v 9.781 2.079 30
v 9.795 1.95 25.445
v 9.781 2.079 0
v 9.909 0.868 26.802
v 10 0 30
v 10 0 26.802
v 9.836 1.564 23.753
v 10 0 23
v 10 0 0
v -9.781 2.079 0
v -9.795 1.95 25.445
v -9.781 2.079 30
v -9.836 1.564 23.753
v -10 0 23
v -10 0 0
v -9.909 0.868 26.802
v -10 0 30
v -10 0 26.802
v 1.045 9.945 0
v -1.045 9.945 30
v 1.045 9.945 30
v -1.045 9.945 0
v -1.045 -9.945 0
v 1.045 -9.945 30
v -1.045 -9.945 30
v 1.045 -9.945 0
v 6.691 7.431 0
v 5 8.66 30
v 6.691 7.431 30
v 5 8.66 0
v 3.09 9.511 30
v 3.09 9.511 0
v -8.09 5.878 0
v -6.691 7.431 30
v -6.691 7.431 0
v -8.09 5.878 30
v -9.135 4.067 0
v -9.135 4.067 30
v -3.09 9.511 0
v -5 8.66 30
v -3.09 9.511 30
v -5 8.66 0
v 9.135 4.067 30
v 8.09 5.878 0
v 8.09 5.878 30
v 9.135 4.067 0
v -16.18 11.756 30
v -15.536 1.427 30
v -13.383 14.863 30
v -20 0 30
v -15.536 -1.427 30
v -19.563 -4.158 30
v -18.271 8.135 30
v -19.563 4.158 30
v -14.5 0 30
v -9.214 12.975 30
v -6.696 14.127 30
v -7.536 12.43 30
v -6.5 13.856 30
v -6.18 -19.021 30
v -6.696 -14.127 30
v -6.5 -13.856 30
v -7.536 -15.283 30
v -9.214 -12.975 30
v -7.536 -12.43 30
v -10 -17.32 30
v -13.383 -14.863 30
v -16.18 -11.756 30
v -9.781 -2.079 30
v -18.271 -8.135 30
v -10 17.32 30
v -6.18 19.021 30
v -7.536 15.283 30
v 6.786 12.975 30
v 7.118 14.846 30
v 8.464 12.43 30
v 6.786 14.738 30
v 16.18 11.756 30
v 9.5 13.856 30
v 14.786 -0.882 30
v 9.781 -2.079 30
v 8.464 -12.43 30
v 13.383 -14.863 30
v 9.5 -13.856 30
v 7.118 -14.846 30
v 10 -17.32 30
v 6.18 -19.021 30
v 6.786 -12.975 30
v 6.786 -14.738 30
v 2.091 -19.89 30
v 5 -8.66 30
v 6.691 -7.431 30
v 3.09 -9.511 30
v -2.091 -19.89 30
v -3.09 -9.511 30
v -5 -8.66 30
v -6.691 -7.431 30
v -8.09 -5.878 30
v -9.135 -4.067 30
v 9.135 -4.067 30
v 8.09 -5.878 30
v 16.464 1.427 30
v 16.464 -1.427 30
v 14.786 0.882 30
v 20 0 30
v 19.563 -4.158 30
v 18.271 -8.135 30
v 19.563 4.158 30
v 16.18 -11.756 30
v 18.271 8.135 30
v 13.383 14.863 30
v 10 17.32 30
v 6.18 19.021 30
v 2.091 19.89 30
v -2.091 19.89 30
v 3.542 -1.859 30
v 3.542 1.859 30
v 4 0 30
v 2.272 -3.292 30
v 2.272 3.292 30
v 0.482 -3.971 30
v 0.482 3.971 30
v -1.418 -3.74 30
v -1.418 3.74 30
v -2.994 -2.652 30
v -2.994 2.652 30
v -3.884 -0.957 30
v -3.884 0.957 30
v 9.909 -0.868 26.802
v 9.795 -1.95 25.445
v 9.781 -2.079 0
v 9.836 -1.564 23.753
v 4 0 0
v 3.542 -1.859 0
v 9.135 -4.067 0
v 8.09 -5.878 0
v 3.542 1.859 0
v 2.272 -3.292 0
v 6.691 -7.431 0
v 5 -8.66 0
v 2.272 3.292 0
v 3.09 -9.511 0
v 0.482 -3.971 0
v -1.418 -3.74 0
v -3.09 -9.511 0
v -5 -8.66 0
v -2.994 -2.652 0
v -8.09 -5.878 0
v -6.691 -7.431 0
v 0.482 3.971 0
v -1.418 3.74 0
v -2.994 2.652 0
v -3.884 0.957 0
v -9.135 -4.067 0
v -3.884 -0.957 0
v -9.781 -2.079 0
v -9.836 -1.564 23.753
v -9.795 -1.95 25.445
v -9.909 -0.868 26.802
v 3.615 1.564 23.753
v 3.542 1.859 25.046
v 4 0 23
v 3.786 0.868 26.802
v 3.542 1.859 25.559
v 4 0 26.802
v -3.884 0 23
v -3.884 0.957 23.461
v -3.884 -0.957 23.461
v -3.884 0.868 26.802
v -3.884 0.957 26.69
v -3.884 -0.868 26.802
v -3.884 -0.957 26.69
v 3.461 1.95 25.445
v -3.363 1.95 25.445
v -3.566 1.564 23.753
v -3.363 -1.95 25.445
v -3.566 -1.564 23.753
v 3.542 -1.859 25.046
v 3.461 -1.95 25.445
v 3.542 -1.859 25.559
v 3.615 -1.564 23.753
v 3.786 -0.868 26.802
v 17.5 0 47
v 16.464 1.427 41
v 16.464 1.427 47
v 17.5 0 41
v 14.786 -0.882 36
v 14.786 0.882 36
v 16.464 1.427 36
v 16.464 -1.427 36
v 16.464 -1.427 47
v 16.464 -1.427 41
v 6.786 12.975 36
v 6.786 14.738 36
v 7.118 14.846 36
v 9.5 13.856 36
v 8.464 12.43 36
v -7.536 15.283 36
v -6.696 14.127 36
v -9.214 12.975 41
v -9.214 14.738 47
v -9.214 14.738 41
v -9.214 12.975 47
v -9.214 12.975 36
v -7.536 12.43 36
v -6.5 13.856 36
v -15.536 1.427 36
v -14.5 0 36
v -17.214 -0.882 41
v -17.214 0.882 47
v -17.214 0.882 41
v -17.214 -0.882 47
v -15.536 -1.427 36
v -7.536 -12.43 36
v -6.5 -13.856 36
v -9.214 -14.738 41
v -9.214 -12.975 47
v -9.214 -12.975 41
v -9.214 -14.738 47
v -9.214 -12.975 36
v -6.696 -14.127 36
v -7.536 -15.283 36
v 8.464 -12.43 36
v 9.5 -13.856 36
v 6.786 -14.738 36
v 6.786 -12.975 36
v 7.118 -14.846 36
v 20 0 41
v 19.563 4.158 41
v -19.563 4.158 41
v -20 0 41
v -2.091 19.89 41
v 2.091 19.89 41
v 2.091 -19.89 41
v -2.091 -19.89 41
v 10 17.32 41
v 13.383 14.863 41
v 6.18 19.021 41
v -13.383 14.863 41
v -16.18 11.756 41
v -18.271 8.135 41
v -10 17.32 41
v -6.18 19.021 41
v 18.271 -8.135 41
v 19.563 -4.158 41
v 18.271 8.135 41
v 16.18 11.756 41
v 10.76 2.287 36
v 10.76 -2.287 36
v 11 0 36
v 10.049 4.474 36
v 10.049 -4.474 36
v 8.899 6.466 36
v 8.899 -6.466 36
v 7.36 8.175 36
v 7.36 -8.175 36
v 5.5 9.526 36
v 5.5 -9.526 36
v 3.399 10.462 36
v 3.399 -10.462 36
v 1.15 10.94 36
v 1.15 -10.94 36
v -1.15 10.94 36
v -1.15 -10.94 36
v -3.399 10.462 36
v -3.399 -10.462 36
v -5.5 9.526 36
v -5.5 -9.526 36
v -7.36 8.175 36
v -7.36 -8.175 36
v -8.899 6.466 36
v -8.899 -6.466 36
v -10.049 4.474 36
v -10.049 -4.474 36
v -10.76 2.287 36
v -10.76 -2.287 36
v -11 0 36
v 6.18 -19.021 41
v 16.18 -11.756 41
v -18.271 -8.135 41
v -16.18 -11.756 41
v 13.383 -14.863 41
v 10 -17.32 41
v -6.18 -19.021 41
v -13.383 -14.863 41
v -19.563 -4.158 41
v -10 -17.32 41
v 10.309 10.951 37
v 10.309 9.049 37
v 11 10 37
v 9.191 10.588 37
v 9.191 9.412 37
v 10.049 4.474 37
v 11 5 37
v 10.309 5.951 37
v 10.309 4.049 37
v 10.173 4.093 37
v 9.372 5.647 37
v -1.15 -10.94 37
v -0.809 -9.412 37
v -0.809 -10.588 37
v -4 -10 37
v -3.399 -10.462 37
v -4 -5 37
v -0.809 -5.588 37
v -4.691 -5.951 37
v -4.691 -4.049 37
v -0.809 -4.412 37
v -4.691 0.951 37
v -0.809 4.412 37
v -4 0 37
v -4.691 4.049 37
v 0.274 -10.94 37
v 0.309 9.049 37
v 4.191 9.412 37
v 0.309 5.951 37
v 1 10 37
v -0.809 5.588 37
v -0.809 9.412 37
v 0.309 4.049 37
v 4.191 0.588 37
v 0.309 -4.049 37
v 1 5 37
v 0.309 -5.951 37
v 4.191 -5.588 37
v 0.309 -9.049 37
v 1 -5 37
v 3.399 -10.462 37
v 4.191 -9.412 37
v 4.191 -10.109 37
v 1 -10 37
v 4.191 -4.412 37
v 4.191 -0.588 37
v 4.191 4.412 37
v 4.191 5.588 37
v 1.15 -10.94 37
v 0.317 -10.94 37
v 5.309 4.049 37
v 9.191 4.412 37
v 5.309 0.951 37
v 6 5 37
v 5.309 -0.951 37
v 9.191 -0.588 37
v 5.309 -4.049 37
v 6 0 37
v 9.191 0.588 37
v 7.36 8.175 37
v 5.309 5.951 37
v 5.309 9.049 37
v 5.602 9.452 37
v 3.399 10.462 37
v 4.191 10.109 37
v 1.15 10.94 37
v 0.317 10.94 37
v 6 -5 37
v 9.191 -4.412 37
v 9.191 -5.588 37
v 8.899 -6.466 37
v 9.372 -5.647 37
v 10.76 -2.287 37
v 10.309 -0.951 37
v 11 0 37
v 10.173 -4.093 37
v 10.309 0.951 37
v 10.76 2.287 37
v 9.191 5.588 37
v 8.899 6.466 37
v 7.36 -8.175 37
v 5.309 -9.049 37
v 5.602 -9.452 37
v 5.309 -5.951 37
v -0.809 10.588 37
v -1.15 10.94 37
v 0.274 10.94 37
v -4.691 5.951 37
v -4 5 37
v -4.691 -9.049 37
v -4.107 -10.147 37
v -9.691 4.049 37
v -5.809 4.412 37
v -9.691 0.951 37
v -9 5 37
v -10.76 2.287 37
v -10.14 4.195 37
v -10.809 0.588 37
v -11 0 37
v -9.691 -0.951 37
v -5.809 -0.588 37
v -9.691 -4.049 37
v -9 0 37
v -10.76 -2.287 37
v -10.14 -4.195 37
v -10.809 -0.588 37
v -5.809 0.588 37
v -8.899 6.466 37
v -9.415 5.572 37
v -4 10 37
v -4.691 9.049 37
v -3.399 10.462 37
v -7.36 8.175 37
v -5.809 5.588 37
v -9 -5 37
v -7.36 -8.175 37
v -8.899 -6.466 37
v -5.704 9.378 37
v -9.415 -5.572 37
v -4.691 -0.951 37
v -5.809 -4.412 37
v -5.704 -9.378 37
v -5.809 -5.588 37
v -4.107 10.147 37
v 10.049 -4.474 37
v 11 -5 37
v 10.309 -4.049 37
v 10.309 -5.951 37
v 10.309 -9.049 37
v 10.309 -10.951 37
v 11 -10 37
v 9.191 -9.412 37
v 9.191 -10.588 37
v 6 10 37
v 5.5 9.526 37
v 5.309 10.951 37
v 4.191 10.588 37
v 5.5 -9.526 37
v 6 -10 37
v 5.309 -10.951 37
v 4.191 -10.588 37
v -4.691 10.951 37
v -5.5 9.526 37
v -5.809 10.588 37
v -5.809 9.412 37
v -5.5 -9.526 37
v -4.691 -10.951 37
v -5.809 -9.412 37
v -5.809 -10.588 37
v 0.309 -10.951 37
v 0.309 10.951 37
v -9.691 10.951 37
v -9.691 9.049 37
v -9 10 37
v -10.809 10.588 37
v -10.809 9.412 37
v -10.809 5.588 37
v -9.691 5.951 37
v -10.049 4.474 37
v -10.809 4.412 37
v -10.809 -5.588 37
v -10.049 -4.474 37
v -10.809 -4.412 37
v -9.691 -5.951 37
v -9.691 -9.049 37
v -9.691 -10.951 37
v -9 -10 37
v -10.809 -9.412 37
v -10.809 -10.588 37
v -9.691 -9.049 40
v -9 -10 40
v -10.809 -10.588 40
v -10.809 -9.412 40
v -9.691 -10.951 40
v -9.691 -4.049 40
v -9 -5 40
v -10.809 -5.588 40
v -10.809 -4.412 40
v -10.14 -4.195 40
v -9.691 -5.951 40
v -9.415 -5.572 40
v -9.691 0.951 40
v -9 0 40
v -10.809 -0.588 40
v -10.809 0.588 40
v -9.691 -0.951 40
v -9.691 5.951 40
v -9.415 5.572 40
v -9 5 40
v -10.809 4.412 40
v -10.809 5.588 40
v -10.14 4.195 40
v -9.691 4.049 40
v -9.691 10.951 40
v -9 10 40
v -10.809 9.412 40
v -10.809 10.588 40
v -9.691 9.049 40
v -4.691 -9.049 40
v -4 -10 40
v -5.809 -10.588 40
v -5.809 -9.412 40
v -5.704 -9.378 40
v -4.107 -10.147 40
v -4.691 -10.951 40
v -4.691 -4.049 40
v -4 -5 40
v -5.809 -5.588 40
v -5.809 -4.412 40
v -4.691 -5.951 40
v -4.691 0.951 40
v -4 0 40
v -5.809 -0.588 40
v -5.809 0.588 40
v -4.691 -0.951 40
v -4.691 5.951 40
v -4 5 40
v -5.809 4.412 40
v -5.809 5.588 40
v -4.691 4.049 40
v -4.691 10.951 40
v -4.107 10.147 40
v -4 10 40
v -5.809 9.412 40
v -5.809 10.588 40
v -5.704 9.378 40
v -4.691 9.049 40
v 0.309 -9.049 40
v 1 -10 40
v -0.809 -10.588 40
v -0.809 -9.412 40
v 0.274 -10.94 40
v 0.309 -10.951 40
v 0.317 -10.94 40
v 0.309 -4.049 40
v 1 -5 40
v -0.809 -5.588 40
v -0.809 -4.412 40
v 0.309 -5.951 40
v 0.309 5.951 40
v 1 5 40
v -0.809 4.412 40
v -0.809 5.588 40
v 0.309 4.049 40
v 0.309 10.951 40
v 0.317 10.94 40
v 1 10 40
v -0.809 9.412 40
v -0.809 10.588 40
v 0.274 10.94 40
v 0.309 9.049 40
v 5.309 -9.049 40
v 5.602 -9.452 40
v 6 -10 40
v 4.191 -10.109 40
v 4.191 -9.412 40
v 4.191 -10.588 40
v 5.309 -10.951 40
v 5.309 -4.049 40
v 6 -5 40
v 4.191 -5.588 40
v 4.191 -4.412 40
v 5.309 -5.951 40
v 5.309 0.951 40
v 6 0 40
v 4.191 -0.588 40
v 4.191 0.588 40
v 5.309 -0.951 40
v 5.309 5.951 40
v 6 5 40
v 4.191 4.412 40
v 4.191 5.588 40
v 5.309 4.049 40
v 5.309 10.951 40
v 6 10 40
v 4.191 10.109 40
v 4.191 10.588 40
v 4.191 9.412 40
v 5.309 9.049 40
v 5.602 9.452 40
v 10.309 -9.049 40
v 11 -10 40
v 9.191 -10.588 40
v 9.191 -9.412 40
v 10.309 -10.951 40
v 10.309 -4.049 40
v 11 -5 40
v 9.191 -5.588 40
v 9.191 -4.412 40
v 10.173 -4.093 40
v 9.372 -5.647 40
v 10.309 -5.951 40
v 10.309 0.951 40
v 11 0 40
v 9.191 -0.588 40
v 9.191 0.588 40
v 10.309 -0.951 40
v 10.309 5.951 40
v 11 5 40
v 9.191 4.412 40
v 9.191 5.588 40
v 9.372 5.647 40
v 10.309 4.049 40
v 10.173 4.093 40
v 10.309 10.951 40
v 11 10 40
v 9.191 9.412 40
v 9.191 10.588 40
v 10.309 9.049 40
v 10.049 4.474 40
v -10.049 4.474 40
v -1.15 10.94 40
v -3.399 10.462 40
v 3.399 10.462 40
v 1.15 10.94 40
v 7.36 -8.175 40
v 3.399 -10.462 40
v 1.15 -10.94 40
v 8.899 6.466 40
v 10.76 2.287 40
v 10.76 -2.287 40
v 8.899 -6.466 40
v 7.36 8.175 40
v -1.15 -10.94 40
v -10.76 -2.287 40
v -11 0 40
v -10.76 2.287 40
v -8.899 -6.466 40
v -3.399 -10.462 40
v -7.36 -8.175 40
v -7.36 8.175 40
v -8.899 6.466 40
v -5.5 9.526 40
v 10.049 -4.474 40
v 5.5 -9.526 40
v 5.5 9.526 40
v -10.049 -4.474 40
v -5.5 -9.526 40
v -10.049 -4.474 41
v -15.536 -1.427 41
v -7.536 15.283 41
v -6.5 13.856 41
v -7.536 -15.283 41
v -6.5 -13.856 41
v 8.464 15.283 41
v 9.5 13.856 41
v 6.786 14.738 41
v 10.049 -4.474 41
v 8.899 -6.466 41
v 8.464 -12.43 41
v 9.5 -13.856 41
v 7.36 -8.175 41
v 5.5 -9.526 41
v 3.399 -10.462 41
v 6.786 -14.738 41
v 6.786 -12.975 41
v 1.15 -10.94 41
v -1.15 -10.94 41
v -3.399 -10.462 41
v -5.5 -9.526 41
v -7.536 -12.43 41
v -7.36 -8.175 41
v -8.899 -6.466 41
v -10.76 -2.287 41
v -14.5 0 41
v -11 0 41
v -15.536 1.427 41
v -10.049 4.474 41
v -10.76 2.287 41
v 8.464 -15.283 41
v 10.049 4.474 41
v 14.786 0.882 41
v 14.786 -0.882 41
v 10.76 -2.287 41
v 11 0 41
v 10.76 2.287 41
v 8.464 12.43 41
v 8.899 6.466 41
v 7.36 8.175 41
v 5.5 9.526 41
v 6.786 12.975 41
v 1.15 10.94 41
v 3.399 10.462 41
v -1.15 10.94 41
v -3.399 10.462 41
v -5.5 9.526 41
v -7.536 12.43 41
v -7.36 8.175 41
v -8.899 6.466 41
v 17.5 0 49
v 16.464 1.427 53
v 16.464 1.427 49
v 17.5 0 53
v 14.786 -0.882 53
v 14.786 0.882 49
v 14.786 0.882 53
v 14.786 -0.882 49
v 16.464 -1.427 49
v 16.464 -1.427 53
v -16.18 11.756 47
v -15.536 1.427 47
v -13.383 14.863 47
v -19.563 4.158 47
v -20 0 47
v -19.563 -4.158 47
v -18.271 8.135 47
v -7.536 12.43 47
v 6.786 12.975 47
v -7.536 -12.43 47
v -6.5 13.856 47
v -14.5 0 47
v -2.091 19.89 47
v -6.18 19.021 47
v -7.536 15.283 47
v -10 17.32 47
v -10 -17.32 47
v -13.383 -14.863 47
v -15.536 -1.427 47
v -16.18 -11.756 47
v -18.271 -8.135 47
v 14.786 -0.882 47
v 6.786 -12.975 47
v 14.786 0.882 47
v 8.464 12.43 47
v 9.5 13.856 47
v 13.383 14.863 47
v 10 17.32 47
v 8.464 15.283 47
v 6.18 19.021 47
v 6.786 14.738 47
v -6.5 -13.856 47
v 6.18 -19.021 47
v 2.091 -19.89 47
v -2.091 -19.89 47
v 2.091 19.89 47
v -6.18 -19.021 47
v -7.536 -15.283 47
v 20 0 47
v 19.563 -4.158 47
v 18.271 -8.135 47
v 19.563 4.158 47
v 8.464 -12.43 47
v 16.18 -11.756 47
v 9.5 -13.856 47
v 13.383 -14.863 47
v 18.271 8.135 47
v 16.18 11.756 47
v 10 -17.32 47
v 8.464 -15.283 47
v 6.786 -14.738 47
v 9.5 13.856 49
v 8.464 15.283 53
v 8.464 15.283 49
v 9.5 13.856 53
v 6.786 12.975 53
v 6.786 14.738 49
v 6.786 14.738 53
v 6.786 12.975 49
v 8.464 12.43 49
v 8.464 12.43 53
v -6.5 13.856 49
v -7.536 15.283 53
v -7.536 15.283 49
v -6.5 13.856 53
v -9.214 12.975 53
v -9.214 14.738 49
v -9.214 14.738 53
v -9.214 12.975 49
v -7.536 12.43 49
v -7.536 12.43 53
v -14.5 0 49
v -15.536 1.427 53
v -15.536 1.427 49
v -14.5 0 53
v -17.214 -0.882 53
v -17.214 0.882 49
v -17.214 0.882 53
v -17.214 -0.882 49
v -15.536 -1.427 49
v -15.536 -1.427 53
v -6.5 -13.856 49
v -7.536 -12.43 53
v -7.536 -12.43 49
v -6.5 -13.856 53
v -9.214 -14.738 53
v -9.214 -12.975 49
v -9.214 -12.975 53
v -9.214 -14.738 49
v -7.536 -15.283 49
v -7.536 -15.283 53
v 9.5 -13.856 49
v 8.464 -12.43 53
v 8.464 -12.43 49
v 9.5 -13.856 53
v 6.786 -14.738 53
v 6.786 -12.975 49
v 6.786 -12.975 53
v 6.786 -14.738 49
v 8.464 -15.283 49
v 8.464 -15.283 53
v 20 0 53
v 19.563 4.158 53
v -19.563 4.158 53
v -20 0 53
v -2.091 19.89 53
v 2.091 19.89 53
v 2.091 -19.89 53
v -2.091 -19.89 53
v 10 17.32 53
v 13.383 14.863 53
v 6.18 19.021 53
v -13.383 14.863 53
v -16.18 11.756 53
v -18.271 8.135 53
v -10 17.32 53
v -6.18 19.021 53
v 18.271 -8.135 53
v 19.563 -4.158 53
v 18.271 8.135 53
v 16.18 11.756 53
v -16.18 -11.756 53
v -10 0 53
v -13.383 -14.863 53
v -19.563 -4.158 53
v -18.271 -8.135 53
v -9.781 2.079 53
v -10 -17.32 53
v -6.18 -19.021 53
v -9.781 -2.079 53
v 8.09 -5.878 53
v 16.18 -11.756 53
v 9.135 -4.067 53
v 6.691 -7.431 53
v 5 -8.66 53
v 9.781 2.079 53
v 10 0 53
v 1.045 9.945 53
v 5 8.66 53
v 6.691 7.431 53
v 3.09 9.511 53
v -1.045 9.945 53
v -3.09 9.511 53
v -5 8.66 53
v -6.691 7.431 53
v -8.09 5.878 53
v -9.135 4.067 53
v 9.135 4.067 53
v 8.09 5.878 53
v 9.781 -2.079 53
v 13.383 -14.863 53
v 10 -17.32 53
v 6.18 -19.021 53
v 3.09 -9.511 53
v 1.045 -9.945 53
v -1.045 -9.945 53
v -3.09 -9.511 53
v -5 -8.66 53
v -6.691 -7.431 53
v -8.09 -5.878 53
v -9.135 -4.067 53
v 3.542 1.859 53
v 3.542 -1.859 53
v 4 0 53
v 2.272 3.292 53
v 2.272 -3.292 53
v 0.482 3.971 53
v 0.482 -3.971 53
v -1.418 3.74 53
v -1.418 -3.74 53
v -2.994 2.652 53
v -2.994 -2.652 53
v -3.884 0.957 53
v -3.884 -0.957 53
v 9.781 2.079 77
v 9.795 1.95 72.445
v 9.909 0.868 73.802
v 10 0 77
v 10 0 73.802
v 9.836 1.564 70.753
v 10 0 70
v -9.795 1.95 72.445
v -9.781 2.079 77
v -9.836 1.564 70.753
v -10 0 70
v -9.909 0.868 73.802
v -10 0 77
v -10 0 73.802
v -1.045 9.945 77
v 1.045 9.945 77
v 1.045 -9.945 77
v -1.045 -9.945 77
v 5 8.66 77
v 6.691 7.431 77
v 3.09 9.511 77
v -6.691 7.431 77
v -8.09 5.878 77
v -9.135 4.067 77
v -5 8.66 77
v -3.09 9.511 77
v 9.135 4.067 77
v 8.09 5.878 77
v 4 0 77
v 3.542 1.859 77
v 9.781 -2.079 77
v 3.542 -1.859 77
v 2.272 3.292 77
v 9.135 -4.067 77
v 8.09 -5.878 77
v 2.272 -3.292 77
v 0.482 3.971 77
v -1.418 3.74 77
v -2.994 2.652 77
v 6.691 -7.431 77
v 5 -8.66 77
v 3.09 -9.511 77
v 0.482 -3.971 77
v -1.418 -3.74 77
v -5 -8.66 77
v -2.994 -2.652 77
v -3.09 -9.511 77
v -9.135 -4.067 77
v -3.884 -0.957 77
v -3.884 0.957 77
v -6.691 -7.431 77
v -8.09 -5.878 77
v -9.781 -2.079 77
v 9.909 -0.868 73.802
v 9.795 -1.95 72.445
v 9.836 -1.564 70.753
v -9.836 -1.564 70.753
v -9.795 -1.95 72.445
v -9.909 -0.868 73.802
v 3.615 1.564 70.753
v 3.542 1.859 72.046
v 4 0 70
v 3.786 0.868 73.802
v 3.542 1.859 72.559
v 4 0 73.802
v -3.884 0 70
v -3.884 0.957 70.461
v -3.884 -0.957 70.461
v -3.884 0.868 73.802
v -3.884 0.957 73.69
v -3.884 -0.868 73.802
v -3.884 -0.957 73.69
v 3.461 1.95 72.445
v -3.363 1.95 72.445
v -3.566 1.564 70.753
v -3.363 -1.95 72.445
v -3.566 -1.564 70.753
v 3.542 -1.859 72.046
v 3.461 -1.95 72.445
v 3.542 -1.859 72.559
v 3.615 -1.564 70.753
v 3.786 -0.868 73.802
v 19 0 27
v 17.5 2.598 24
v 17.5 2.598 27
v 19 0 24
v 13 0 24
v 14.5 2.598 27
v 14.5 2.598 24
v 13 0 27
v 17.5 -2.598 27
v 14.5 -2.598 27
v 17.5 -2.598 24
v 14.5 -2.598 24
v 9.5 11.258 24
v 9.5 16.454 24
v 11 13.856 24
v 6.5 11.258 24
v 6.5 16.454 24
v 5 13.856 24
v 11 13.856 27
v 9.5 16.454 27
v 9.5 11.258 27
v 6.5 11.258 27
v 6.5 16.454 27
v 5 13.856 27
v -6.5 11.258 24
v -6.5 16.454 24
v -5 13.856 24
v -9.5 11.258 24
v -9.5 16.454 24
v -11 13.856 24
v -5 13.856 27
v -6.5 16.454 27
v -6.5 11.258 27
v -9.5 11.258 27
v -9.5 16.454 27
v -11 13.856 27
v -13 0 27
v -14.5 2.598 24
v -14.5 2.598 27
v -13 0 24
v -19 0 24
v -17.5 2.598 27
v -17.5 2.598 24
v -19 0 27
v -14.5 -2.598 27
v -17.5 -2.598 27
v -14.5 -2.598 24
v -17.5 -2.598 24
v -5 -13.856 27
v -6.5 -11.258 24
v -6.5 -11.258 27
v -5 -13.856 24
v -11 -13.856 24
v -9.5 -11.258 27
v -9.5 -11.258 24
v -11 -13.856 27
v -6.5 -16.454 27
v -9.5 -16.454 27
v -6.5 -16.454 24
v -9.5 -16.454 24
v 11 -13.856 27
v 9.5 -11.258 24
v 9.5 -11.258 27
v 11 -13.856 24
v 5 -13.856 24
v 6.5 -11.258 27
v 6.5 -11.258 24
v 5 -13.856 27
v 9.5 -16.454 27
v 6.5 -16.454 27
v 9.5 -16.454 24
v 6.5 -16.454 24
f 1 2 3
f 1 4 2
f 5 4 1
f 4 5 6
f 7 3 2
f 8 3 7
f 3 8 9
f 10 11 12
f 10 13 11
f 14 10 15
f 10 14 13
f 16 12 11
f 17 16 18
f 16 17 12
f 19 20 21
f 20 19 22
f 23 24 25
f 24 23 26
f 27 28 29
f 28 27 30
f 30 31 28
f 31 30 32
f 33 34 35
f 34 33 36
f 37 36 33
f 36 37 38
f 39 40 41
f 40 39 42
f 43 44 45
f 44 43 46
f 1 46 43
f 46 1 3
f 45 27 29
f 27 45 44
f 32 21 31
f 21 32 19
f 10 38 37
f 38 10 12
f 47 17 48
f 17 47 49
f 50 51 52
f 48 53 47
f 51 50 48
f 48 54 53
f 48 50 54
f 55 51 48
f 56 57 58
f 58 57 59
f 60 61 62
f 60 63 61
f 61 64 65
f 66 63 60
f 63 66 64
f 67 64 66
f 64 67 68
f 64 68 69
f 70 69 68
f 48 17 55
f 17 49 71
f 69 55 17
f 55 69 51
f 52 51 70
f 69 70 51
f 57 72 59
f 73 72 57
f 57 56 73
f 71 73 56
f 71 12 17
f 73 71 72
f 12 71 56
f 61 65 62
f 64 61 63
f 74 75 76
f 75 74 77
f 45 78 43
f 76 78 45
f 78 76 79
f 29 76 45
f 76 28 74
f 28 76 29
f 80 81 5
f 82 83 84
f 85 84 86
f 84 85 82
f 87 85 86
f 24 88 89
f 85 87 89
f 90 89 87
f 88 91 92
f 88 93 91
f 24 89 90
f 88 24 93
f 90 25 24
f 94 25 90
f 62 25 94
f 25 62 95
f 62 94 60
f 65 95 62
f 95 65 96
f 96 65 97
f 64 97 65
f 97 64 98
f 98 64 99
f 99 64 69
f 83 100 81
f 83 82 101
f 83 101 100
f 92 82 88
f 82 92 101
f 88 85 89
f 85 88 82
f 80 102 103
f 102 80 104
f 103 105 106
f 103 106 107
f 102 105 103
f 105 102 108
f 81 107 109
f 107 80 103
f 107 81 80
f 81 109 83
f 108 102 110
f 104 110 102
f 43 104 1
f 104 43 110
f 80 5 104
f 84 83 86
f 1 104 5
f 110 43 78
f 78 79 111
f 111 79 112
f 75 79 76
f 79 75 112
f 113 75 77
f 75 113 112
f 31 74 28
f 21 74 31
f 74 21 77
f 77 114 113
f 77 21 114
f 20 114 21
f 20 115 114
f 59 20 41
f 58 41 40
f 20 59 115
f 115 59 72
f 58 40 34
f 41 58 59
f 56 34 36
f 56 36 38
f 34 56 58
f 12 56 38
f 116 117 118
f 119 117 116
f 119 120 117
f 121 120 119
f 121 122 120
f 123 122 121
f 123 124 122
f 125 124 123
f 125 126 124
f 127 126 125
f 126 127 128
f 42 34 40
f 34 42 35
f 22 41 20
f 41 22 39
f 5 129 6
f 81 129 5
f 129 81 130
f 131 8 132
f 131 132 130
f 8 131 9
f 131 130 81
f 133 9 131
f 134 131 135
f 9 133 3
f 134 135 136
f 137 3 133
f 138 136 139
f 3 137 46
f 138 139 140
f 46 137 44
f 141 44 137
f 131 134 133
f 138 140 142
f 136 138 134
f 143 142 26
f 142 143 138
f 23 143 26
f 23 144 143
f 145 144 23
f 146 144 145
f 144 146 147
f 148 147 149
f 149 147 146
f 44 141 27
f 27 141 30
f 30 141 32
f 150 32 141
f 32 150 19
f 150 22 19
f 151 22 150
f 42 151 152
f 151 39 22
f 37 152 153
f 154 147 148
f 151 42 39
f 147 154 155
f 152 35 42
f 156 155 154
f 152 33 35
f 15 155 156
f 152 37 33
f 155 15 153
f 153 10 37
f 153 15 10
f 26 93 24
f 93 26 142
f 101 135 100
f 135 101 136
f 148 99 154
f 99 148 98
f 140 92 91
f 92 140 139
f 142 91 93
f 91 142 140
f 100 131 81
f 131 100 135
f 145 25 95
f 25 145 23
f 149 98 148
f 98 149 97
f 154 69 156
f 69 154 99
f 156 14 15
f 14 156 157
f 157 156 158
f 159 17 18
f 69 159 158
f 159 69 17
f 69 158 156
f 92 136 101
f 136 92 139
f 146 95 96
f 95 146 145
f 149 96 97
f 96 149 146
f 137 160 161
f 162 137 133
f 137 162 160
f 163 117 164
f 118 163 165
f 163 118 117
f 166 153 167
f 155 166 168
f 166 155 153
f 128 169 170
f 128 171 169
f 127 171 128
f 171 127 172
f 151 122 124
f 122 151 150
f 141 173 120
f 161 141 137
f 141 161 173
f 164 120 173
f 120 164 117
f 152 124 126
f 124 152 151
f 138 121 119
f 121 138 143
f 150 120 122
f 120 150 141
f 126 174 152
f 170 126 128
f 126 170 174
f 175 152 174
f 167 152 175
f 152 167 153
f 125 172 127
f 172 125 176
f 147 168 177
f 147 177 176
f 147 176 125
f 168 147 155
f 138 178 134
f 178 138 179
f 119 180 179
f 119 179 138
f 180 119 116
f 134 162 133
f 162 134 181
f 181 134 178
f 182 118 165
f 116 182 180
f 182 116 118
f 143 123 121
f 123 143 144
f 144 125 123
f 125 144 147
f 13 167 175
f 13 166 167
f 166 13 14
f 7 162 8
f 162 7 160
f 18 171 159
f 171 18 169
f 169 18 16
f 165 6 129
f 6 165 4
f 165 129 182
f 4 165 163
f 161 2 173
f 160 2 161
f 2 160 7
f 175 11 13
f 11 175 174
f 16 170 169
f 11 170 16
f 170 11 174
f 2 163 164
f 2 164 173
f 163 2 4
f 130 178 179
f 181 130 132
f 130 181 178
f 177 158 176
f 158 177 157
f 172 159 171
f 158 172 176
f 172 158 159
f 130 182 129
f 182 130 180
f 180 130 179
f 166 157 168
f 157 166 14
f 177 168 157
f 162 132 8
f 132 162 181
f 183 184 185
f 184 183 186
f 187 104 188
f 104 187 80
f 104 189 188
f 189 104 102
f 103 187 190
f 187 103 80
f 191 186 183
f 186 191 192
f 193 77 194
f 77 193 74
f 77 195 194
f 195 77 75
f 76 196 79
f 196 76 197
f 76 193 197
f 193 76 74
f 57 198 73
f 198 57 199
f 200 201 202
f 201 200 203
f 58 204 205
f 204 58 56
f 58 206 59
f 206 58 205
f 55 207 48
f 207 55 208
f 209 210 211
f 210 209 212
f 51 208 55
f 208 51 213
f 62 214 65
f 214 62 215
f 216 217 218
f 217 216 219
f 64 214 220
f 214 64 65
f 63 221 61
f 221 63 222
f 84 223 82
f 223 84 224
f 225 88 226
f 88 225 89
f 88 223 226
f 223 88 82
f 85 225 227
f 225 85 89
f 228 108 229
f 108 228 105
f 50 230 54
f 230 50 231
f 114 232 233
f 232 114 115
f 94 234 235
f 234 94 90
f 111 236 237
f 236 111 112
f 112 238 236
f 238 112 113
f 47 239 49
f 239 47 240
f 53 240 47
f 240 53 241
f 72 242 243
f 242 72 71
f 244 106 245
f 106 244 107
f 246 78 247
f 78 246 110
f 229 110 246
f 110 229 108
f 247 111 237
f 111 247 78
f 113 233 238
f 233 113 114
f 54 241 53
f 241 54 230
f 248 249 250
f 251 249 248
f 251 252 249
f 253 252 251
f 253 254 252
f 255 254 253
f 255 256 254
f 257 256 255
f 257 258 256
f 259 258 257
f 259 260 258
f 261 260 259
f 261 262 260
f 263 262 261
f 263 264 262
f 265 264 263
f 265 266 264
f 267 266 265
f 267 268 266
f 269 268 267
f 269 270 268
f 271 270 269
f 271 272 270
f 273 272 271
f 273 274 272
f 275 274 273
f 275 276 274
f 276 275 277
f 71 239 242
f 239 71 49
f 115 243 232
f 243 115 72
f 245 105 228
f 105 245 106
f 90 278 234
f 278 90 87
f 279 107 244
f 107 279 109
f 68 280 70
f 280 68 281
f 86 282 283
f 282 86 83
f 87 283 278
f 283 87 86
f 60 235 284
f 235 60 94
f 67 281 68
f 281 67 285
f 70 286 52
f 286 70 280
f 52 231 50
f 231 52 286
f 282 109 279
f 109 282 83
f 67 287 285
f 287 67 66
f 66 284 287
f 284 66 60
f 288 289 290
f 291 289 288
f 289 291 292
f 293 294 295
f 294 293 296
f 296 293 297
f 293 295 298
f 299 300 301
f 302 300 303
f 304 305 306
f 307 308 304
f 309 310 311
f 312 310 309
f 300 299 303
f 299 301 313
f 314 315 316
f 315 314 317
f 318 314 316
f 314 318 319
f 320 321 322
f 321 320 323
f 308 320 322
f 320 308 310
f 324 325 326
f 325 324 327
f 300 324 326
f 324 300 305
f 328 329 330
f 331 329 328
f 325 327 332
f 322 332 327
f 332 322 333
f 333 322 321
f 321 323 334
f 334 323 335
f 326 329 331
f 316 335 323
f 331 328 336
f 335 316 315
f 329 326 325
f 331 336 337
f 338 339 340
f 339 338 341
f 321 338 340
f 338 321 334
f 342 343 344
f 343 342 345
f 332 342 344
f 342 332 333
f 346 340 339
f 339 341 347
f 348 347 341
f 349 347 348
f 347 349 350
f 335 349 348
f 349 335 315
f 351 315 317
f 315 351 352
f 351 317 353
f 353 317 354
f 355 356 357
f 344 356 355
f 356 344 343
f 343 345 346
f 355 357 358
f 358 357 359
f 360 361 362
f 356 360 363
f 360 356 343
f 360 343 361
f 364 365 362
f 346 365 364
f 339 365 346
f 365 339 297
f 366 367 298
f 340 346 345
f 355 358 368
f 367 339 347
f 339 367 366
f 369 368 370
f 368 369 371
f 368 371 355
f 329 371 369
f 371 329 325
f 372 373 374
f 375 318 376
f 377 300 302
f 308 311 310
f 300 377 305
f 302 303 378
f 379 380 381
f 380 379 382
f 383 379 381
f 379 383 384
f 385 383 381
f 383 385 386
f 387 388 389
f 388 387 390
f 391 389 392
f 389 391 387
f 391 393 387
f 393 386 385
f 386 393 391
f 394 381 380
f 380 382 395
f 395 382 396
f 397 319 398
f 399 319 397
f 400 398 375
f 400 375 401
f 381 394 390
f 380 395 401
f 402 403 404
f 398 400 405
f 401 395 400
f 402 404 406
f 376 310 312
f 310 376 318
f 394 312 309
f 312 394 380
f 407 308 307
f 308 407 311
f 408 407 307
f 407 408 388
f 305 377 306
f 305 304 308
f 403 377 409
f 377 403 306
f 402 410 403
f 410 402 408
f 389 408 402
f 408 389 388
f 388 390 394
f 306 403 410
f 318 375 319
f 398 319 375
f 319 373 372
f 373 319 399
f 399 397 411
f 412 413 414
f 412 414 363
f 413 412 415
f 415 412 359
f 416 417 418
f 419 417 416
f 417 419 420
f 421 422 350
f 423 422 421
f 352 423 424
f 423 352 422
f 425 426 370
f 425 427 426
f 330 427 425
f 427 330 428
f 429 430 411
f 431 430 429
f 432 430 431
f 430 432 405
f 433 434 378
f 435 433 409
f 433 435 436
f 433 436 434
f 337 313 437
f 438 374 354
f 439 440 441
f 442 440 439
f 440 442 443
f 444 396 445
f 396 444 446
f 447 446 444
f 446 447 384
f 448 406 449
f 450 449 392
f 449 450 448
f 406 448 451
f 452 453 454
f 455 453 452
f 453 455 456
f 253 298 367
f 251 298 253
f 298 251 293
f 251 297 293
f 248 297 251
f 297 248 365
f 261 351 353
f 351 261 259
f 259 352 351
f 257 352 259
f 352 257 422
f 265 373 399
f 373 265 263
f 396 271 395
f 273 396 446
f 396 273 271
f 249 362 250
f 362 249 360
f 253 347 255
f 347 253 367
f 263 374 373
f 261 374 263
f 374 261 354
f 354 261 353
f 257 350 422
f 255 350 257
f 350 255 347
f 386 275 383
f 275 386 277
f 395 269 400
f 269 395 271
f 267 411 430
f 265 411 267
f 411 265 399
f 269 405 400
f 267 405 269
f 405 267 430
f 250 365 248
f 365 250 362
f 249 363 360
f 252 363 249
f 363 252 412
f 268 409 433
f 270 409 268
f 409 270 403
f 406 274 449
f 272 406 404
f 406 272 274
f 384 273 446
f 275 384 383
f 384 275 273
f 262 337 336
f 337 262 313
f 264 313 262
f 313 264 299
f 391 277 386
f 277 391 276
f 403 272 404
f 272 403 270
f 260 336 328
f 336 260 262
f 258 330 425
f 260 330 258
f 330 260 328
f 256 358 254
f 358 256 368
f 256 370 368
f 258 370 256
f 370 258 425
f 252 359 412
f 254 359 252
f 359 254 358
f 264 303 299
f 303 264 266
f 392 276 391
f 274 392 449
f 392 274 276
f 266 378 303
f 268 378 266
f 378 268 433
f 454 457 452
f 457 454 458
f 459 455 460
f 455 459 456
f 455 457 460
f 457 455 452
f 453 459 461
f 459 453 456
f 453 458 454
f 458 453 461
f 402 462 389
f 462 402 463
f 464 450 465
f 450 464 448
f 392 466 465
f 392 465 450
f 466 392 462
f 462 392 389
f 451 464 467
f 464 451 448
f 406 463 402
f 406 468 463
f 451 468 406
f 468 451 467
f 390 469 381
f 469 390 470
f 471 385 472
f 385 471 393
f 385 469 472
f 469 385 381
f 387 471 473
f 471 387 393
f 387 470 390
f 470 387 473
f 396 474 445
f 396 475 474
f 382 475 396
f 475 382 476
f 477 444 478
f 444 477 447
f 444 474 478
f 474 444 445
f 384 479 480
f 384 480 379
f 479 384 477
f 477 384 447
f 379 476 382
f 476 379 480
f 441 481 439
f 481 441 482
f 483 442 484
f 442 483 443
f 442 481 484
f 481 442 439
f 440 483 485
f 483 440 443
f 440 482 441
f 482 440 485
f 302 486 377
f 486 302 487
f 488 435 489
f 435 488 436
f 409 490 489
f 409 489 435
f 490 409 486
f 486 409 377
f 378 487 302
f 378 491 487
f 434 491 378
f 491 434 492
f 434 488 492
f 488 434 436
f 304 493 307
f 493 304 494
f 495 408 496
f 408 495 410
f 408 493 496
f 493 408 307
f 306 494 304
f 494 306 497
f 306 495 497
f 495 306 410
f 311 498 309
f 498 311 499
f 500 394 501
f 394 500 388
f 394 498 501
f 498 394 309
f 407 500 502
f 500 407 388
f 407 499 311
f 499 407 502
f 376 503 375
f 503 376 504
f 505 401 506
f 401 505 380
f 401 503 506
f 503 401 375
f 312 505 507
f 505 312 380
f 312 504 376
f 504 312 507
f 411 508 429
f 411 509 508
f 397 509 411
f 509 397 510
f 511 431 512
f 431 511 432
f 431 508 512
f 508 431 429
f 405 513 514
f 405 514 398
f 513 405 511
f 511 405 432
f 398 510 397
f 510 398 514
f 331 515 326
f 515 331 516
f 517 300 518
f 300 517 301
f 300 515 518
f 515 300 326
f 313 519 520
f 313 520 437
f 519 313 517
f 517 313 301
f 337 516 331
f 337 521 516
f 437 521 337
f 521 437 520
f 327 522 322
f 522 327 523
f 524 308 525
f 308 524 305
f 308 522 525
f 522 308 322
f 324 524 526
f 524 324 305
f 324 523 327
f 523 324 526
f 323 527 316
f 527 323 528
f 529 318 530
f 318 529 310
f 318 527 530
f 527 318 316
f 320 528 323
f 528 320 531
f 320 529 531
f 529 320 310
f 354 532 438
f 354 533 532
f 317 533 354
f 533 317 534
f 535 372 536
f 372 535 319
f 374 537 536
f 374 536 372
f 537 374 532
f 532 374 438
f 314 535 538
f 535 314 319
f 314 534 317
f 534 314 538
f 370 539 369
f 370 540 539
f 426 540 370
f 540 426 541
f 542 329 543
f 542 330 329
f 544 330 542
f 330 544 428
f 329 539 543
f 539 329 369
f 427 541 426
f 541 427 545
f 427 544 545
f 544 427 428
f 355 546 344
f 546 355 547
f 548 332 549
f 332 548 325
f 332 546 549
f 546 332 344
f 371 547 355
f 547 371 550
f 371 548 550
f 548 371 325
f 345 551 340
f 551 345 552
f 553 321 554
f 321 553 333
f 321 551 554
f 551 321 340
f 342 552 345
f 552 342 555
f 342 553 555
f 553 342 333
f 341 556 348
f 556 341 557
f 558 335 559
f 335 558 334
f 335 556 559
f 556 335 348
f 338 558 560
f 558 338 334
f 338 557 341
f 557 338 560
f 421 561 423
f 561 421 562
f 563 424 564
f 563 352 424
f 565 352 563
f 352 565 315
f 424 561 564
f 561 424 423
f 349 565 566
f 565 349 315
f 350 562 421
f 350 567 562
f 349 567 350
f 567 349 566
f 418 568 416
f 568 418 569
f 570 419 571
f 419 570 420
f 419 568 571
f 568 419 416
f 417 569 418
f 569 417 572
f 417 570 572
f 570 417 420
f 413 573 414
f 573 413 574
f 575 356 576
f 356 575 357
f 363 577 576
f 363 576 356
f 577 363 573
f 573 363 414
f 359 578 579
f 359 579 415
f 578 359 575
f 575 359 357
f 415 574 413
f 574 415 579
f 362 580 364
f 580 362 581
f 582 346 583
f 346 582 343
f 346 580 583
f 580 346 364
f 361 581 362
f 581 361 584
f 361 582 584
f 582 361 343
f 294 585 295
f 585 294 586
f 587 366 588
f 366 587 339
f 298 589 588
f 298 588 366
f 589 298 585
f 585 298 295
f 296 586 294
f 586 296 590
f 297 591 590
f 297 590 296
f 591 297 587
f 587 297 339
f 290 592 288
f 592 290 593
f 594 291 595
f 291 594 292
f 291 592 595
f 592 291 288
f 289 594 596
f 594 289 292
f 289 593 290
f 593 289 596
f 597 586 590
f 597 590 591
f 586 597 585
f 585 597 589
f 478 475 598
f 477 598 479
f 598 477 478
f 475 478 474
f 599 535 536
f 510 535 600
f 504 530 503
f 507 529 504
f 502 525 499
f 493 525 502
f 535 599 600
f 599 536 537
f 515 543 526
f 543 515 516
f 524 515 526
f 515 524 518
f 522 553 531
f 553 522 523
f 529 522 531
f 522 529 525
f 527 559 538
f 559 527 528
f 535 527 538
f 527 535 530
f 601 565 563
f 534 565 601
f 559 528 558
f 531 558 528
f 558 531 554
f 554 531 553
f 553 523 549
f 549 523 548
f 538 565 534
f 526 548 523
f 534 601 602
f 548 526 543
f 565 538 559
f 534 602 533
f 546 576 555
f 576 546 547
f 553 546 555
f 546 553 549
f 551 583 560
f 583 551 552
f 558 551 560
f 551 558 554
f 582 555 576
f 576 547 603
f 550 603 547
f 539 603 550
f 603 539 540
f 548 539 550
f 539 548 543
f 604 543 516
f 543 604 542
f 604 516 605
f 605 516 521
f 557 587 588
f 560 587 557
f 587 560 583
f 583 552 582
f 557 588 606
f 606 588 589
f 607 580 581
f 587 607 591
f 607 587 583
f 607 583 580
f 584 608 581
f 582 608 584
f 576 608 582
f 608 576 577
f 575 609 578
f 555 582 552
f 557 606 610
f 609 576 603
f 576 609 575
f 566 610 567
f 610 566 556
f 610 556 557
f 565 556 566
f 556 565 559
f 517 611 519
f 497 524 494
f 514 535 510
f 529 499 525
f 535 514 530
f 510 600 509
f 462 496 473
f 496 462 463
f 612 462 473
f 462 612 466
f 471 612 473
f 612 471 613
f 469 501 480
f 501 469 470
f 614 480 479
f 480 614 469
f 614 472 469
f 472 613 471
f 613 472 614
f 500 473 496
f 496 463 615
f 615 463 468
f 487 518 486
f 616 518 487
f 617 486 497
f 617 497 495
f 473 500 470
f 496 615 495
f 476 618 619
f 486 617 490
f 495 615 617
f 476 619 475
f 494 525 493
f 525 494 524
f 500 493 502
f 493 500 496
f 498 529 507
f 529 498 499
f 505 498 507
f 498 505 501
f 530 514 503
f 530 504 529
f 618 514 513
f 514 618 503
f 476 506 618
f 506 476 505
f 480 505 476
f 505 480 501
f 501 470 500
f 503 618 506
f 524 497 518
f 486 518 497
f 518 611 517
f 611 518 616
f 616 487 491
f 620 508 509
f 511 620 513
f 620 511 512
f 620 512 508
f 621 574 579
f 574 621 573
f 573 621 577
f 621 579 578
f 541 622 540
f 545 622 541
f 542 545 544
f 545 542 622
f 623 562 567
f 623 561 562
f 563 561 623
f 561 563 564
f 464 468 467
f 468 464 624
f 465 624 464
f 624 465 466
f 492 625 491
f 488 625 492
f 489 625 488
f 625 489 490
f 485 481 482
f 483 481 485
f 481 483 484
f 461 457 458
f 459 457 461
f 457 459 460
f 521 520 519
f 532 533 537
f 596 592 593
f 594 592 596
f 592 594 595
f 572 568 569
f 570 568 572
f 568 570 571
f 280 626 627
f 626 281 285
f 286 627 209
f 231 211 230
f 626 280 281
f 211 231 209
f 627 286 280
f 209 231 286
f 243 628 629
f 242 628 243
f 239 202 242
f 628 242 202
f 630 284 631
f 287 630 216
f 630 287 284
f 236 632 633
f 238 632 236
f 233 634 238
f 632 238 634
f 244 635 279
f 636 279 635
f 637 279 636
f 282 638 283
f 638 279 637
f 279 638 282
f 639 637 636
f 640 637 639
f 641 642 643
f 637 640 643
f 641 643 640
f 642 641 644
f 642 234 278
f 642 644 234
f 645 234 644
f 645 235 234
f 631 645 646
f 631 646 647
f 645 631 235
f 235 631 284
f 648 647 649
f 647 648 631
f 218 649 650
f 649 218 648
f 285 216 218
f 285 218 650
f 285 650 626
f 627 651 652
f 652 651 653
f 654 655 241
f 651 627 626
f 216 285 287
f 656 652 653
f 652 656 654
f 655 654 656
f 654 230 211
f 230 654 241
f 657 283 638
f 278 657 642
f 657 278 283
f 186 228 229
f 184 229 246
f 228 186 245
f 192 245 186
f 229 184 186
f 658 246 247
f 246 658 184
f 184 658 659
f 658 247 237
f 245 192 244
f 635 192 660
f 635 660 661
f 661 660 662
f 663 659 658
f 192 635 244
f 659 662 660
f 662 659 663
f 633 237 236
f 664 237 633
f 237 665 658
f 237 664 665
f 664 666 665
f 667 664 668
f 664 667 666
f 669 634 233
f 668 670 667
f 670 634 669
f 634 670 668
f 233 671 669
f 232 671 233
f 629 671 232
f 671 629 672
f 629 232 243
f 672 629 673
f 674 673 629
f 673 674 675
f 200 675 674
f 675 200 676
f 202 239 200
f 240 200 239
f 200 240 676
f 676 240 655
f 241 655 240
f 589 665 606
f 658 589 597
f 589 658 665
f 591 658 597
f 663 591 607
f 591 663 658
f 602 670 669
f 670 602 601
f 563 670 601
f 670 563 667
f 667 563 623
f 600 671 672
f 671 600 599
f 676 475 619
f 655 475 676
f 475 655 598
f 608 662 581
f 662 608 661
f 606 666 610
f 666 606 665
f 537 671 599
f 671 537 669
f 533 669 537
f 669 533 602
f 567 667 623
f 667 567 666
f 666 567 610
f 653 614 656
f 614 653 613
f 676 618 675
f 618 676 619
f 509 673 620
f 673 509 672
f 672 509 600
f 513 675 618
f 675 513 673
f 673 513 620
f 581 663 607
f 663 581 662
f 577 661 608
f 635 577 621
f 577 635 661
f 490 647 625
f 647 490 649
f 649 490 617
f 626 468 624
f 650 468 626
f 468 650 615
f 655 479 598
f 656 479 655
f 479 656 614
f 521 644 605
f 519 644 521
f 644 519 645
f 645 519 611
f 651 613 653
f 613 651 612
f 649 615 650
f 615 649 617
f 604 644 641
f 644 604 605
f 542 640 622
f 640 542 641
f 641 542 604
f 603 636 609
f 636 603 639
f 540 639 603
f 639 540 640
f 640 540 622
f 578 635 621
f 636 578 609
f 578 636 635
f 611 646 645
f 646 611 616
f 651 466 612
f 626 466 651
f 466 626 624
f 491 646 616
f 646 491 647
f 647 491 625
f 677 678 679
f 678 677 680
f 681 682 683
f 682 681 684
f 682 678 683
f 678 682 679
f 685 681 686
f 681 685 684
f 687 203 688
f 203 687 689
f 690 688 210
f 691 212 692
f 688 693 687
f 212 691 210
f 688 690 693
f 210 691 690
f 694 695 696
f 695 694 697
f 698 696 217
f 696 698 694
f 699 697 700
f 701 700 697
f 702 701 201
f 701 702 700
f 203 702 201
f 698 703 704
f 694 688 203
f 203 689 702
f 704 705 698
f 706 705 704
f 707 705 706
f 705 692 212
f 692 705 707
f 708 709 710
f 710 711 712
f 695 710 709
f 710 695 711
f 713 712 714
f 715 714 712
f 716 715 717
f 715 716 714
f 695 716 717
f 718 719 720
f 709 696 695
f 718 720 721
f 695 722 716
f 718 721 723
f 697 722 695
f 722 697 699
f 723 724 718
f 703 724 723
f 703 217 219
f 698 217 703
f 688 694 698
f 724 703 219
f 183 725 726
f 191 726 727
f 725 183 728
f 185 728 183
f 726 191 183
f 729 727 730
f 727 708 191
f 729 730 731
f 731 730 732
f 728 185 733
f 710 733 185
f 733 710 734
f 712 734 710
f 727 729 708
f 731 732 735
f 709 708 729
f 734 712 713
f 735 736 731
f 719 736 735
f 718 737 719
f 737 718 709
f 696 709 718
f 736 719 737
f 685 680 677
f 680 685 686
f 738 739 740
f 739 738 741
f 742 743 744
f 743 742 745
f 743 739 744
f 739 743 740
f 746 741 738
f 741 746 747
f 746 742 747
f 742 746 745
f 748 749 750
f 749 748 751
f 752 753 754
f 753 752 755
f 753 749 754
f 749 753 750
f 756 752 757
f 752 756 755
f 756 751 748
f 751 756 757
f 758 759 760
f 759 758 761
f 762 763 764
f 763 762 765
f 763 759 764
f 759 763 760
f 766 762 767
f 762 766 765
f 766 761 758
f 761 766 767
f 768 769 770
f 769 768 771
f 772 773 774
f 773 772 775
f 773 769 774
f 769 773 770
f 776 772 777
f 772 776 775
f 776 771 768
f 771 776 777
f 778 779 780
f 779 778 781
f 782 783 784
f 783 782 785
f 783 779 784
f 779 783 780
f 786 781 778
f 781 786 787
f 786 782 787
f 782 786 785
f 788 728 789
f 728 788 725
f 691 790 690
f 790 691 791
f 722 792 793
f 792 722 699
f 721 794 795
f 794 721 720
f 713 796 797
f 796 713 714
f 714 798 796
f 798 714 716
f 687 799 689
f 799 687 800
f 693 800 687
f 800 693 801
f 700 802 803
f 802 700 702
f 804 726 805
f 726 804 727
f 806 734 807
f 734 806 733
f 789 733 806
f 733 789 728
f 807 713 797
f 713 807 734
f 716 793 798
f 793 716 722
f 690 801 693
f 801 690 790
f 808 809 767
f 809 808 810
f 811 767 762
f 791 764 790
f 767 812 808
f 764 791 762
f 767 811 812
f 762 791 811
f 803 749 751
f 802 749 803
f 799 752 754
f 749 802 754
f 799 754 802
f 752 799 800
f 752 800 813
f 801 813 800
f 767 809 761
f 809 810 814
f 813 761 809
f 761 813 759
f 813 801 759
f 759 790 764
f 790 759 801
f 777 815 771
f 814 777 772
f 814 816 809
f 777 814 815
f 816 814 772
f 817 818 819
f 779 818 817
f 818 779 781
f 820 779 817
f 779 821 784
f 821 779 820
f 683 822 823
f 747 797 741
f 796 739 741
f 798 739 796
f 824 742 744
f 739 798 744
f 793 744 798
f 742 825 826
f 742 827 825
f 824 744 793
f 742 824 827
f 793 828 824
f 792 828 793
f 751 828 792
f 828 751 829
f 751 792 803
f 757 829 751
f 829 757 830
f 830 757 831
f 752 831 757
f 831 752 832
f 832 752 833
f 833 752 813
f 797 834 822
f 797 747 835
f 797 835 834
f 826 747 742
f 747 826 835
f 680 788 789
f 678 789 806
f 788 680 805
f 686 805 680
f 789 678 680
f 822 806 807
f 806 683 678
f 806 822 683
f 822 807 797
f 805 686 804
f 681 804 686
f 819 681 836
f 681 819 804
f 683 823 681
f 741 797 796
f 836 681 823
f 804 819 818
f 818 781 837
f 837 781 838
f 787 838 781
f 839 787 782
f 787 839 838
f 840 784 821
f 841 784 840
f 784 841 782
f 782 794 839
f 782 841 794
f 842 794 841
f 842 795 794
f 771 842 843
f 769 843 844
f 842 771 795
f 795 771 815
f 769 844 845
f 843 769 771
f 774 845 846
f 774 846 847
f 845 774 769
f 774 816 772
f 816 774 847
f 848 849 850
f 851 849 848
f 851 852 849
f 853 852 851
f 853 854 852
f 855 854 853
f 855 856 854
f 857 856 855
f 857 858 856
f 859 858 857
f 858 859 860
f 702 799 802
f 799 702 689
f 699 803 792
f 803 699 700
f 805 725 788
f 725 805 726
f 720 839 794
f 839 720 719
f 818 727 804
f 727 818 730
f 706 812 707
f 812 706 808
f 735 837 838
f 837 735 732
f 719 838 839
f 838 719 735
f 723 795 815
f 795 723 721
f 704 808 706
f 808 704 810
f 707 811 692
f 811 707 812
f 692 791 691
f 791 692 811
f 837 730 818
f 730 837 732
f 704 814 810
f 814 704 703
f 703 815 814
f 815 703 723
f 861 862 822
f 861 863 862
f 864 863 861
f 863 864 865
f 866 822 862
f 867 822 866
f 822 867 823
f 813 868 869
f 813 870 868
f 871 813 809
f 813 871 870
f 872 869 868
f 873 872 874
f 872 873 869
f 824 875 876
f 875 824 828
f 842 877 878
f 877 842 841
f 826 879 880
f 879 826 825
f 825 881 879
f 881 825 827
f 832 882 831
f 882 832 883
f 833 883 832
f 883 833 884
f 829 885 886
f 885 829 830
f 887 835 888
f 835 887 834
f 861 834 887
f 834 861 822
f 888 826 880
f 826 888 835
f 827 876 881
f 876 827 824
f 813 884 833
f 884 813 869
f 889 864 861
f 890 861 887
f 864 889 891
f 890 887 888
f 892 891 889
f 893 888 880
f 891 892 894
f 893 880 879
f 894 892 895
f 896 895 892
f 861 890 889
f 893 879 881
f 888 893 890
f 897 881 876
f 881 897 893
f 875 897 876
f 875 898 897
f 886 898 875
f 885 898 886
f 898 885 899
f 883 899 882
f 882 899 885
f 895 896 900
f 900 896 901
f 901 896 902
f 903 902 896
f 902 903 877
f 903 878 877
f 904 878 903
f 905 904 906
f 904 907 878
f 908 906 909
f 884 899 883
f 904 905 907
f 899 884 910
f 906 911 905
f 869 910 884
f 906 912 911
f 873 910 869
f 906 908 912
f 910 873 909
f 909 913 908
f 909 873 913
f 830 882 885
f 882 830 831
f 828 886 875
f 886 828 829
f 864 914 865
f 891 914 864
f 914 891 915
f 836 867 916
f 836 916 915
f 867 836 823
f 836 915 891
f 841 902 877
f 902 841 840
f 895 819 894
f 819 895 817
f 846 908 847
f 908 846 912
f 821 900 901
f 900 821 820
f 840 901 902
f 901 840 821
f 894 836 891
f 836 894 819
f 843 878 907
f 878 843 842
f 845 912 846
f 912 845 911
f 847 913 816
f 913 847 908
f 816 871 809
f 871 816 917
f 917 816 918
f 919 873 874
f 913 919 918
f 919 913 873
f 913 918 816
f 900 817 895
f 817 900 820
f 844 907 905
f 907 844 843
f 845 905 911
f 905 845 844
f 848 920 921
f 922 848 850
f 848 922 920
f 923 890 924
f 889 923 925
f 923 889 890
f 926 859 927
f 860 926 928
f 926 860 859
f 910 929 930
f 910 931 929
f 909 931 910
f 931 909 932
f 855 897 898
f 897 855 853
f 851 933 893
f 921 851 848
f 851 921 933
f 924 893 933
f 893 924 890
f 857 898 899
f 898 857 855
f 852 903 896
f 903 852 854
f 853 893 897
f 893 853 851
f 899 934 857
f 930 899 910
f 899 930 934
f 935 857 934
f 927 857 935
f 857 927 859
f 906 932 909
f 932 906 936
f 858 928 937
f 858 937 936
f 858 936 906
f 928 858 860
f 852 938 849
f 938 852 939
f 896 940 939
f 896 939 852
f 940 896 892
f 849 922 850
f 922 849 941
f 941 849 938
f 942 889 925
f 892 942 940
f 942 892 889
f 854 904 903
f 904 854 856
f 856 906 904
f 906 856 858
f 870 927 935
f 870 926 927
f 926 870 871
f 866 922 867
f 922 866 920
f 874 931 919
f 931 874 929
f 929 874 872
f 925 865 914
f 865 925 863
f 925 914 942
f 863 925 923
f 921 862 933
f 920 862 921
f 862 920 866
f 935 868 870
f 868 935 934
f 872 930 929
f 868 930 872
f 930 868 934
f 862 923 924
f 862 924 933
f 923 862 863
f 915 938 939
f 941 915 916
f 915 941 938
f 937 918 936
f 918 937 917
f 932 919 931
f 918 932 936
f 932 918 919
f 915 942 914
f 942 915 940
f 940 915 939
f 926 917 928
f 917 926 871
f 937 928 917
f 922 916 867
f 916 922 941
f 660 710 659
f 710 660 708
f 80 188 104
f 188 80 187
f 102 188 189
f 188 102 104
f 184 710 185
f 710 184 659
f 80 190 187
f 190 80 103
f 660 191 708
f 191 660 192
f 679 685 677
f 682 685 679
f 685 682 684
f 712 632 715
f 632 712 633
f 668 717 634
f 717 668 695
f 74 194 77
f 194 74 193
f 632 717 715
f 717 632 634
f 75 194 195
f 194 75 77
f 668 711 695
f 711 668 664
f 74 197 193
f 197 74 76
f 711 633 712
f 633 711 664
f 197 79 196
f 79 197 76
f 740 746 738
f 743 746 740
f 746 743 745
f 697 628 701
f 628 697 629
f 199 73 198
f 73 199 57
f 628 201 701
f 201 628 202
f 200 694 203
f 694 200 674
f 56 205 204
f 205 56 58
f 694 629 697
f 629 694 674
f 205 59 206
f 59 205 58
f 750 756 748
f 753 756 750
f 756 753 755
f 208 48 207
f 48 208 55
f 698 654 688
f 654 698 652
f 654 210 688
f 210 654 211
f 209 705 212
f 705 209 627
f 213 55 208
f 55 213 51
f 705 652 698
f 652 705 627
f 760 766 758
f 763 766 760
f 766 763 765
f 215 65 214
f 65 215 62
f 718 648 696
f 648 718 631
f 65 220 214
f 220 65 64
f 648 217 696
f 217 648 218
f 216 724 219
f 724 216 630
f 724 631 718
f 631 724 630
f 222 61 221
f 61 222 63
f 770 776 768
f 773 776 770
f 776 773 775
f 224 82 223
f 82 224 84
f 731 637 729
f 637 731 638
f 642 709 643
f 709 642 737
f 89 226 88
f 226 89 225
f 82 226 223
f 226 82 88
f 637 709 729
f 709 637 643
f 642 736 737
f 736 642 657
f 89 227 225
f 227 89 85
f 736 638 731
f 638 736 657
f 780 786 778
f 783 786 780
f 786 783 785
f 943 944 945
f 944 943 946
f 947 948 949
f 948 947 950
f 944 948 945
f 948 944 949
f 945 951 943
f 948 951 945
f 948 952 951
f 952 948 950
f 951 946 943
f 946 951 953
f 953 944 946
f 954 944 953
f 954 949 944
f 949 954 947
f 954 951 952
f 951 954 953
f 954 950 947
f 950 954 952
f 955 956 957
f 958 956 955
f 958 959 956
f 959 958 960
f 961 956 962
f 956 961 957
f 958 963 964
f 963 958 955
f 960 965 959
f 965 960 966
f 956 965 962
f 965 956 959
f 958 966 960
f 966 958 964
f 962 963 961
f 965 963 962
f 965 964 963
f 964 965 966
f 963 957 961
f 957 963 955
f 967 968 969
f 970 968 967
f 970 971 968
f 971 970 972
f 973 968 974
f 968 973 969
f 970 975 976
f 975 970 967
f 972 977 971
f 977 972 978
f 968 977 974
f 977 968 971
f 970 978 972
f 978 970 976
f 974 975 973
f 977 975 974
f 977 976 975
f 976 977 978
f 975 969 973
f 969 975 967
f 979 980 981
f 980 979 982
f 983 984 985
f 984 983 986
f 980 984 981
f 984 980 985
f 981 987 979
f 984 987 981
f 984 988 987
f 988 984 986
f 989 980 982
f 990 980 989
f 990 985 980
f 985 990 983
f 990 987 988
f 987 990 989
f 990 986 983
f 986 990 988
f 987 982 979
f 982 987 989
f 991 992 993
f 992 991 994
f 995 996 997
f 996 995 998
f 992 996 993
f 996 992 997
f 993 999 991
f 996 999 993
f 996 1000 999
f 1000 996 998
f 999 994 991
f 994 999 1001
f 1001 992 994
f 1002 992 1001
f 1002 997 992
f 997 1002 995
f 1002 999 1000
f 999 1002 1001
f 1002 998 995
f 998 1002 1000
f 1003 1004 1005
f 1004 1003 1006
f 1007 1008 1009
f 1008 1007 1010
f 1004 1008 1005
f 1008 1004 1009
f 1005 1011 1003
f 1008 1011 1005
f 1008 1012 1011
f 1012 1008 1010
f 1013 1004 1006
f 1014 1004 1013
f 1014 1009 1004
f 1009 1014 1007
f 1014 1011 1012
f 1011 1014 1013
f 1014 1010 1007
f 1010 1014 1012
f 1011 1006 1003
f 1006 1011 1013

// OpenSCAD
// Parameters
shaft_d = 20;
shaft_l = 30;
bore_d = 8;
pin_d = 4;
pin_offset = 5;

flange_d = 40;
flange_th = 6;
bolt_d = 3;
bolt_circle_d = 32;
bolt_count = 6;

spacer_th = 1;
flex_th = 3;

nut_d = 6;
nut_th = 3;

// Modules
module input_shaft() {
    difference() {
        cylinder(d=shaft_d, h=shaft_l);
        translate([0, 0, shaft_l/2])
            cylinder(d=bore_d, h=shaft_l, center=true);
        translate([-shaft_d/2, 0, shaft_l - pin_offset])
            rotate([0,90,0])
            cylinder(d=pin_d, h=shaft_d);
    }
}

module output_shaft() {
    input_shaft(); // Same geometry
}

module flange_plate() {
    difference() {
        cylinder(d=flange_d, h=flange_th);
        for (i = [0:bolt_count-1]) {
            angle = 360/bolt_count * i;
            x = bolt_circle_d/2 * cos(angle);
            y = bolt_circle_d/2 * sin(angle);
            translate([x, y, 0])
                cylinder(d=bolt_d, h=flange_th + 2);
        }
    }
}

module spacer_ring() {
    difference() {
        cylinder(d=flange_d, h=spacer_th);
        cylinder(d=shaft_d + 2, h=spacer_th + 1);
    }
}

module flexible_element() {
    // Simulate mesh with a grid-like pattern
    difference() {
        cylinder(d=flange_d, h=flex_th);
        for (x = [-10:5:10])
            for (y = [-10:5:10])
                if (abs(x) + abs(y) > 0)
                    translate([x, y, 0])
                        cylinder(d=2, h=flex_th + 1);
    }
}

module bolt() {
    union() {
        cylinder(d=bolt_d, h=flange_th*2 + spacer_th*2 + flex_th);
        translate([0, 0, flange_th*2 + spacer_th*2 + flex_th])
            cylinder(d=bolt_d*2, h=2); // hex head
    }
}

module nut() {
    translate([0, 0, -nut_th])
        cylinder(d=nut_d, h=nut_th, $fn=6);
}

// Assembly
module coupling_assembly() {
    translate([0, 0, 0]) input_shaft();
    translate([0, 0, shaft_l]) flange_plate();
    translate([0, 0, shaft_l + flange_th]) spacer_ring();
    translate([0, 0, shaft_l + flange_th + spacer_th]) flexible_element();
    translate([0, 0, shaft_l + flange_th + spacer_th + flex_th]) spacer_ring();
    translate([0, 0, shaft_l + flange_th*2 + spacer_th*2 + flex_th]) flange_plate();
    translate([0, 0, shaft_l + flange_th*2 + spacer_th*2 + flex_th]) output_shaft();

    // Bolts and nuts
    for (i = [0:bolt_count-1]) {
        angle = 360/bolt_count * i;
        x = bolt_circle_d/2 * cos(angle);
        y = bolt_circle_d/2 * sin(angle);
        translate([x, y, shaft_l])
            bolt();
        translate([x, y, shaft_l - nut_th])
            nut();
    }
}

// Render the full assembly
coupling_assembly();
